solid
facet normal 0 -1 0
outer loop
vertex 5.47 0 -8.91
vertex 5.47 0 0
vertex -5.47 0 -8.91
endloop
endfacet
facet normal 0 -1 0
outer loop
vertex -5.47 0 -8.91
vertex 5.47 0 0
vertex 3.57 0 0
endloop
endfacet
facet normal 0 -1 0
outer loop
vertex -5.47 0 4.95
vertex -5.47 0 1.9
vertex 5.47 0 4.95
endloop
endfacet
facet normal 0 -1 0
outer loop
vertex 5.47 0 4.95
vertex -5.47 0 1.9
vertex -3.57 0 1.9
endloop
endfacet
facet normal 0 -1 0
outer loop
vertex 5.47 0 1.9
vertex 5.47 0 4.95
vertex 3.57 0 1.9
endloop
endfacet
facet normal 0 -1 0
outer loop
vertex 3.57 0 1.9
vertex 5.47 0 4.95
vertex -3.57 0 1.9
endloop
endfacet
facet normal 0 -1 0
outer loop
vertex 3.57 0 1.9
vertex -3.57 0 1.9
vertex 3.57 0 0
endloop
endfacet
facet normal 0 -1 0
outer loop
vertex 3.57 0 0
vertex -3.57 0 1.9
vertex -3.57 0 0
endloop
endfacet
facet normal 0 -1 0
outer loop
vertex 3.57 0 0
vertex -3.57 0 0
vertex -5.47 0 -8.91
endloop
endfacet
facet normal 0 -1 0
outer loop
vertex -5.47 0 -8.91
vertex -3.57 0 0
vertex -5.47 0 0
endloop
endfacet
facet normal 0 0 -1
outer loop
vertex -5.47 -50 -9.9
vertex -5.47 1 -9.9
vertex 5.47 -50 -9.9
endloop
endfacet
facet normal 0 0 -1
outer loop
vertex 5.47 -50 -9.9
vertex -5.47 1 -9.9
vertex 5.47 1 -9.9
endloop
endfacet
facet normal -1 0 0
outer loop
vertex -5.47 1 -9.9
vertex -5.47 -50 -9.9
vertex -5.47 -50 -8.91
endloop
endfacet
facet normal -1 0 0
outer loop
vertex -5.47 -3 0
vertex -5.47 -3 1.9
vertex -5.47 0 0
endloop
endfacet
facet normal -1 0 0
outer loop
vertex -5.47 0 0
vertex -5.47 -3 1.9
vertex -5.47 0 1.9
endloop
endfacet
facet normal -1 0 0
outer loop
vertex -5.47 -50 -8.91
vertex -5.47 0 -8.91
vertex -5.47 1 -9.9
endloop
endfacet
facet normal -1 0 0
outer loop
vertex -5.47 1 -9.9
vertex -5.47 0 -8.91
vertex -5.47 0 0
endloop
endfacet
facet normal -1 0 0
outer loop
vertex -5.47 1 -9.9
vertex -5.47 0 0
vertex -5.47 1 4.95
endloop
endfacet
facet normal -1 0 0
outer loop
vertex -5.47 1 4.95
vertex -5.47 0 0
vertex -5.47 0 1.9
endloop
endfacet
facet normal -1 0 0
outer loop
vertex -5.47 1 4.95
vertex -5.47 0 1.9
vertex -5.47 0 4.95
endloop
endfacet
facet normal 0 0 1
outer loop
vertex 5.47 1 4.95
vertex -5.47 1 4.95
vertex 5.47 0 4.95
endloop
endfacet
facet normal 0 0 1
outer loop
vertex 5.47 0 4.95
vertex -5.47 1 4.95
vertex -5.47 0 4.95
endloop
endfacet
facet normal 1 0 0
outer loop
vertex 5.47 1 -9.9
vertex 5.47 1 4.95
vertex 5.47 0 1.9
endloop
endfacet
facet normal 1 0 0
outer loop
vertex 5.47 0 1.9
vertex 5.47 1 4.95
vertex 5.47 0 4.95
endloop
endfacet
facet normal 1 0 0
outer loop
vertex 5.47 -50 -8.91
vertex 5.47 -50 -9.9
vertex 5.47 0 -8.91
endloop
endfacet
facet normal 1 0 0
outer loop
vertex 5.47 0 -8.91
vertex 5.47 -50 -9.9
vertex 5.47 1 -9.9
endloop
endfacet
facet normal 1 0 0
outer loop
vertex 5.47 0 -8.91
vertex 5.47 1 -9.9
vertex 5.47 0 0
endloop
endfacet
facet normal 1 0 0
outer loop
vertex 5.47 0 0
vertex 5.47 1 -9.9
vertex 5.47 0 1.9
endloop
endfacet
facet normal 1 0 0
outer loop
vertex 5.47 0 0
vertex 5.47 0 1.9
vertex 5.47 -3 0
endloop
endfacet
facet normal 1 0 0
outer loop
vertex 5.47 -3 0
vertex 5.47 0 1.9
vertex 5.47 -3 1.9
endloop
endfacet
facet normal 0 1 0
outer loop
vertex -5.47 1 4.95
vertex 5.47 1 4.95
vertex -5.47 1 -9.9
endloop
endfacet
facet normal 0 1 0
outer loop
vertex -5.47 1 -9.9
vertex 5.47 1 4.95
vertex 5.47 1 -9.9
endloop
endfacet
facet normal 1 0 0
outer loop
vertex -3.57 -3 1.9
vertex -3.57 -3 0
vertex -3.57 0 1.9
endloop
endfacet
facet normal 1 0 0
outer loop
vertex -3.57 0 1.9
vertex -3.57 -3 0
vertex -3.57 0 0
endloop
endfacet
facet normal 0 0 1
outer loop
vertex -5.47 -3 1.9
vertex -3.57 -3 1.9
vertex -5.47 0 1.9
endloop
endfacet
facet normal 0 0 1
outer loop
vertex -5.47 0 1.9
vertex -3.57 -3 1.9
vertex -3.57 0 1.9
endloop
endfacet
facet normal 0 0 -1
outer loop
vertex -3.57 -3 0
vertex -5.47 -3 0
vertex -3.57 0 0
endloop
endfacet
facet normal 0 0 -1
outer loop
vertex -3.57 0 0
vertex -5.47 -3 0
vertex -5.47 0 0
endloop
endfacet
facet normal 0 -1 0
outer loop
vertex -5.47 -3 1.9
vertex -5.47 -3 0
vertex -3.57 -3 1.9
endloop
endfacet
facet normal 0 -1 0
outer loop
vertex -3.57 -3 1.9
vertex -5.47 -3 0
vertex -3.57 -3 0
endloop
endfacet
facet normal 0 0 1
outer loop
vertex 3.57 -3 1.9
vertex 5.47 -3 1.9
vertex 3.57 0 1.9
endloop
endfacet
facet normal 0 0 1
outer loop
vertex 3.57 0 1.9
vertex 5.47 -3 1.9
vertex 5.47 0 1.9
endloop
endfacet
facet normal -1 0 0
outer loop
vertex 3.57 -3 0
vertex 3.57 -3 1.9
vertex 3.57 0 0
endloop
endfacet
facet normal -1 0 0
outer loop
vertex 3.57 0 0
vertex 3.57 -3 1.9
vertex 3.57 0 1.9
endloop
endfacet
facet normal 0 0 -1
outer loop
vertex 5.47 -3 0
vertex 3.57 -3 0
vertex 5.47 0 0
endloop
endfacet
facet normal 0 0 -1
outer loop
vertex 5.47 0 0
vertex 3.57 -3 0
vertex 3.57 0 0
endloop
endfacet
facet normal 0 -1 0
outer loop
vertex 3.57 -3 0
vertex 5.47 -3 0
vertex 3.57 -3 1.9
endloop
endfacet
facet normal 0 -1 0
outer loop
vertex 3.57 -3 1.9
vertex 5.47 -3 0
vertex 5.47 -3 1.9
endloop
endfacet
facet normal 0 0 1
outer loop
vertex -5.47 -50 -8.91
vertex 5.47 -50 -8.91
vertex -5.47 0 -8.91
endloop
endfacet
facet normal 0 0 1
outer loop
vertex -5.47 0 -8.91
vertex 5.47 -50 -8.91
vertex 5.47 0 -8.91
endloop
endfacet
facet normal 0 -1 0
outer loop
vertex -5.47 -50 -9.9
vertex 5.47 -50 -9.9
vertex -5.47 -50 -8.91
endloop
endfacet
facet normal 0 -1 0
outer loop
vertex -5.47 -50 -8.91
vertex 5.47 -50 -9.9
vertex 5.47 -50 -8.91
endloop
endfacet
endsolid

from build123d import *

# Parameters (mm, degrees)
BOSS_EXTRUDE1_DEPTH = 1
SKETCH1_3_W         = 1.9
SKETCH1_3_H         = 1.9
BOSS_EXTRUDE2_DEPTH = 3
SKETCH1_4_W         = 10.9395
SKETCH1_4_H         = 0.99
BOSS_EXTRUDE3_DEPTH = 50


with BuildPart() as part:
    # Sketch1 → Boss-Extrude1 (new body)
    with BuildSketch(Plane(origin=(0, 0, 0), x_dir=(1, 0, 0), z_dir=(0, 1, 0))):
        Polygon((-5.46975, -4.95), (0, -4.95), (5.46975, -4.95), (5.46975, 9.9), (-5.46975, 9.9), align=None)
    extrude(amount=BOSS_EXTRUDE1_DEPTH)

    # Sketch1<3> → Boss-Extrude2 (add)
    with BuildSketch(Plane(origin=(0, 0, 0), x_dir=(1, 0, 0), z_dir=(0, 1, 0))):
        with Locations((-4.51975, -0.95)):
            Rectangle(SKETCH1_3_W, SKETCH1_3_H)
        with Locations((4.51975, -0.95)):
            Rectangle(SKETCH1_3_W, SKETCH1_3_H)
    extrude(amount=-BOSS_EXTRUDE2_DEPTH)

    # Sketch1<4> → Boss-Extrude3 (add)
    with BuildSketch(Plane(origin=(0, 0, 0), x_dir=(1, 0, 0), z_dir=(0, 1, 0))):
        with Locations((0, 9.405)):
            Rectangle(SKETCH1_4_W, SKETCH1_4_H)
    extrude(amount=-BOSS_EXTRUDE3_DEPTH)


solid = part.part
